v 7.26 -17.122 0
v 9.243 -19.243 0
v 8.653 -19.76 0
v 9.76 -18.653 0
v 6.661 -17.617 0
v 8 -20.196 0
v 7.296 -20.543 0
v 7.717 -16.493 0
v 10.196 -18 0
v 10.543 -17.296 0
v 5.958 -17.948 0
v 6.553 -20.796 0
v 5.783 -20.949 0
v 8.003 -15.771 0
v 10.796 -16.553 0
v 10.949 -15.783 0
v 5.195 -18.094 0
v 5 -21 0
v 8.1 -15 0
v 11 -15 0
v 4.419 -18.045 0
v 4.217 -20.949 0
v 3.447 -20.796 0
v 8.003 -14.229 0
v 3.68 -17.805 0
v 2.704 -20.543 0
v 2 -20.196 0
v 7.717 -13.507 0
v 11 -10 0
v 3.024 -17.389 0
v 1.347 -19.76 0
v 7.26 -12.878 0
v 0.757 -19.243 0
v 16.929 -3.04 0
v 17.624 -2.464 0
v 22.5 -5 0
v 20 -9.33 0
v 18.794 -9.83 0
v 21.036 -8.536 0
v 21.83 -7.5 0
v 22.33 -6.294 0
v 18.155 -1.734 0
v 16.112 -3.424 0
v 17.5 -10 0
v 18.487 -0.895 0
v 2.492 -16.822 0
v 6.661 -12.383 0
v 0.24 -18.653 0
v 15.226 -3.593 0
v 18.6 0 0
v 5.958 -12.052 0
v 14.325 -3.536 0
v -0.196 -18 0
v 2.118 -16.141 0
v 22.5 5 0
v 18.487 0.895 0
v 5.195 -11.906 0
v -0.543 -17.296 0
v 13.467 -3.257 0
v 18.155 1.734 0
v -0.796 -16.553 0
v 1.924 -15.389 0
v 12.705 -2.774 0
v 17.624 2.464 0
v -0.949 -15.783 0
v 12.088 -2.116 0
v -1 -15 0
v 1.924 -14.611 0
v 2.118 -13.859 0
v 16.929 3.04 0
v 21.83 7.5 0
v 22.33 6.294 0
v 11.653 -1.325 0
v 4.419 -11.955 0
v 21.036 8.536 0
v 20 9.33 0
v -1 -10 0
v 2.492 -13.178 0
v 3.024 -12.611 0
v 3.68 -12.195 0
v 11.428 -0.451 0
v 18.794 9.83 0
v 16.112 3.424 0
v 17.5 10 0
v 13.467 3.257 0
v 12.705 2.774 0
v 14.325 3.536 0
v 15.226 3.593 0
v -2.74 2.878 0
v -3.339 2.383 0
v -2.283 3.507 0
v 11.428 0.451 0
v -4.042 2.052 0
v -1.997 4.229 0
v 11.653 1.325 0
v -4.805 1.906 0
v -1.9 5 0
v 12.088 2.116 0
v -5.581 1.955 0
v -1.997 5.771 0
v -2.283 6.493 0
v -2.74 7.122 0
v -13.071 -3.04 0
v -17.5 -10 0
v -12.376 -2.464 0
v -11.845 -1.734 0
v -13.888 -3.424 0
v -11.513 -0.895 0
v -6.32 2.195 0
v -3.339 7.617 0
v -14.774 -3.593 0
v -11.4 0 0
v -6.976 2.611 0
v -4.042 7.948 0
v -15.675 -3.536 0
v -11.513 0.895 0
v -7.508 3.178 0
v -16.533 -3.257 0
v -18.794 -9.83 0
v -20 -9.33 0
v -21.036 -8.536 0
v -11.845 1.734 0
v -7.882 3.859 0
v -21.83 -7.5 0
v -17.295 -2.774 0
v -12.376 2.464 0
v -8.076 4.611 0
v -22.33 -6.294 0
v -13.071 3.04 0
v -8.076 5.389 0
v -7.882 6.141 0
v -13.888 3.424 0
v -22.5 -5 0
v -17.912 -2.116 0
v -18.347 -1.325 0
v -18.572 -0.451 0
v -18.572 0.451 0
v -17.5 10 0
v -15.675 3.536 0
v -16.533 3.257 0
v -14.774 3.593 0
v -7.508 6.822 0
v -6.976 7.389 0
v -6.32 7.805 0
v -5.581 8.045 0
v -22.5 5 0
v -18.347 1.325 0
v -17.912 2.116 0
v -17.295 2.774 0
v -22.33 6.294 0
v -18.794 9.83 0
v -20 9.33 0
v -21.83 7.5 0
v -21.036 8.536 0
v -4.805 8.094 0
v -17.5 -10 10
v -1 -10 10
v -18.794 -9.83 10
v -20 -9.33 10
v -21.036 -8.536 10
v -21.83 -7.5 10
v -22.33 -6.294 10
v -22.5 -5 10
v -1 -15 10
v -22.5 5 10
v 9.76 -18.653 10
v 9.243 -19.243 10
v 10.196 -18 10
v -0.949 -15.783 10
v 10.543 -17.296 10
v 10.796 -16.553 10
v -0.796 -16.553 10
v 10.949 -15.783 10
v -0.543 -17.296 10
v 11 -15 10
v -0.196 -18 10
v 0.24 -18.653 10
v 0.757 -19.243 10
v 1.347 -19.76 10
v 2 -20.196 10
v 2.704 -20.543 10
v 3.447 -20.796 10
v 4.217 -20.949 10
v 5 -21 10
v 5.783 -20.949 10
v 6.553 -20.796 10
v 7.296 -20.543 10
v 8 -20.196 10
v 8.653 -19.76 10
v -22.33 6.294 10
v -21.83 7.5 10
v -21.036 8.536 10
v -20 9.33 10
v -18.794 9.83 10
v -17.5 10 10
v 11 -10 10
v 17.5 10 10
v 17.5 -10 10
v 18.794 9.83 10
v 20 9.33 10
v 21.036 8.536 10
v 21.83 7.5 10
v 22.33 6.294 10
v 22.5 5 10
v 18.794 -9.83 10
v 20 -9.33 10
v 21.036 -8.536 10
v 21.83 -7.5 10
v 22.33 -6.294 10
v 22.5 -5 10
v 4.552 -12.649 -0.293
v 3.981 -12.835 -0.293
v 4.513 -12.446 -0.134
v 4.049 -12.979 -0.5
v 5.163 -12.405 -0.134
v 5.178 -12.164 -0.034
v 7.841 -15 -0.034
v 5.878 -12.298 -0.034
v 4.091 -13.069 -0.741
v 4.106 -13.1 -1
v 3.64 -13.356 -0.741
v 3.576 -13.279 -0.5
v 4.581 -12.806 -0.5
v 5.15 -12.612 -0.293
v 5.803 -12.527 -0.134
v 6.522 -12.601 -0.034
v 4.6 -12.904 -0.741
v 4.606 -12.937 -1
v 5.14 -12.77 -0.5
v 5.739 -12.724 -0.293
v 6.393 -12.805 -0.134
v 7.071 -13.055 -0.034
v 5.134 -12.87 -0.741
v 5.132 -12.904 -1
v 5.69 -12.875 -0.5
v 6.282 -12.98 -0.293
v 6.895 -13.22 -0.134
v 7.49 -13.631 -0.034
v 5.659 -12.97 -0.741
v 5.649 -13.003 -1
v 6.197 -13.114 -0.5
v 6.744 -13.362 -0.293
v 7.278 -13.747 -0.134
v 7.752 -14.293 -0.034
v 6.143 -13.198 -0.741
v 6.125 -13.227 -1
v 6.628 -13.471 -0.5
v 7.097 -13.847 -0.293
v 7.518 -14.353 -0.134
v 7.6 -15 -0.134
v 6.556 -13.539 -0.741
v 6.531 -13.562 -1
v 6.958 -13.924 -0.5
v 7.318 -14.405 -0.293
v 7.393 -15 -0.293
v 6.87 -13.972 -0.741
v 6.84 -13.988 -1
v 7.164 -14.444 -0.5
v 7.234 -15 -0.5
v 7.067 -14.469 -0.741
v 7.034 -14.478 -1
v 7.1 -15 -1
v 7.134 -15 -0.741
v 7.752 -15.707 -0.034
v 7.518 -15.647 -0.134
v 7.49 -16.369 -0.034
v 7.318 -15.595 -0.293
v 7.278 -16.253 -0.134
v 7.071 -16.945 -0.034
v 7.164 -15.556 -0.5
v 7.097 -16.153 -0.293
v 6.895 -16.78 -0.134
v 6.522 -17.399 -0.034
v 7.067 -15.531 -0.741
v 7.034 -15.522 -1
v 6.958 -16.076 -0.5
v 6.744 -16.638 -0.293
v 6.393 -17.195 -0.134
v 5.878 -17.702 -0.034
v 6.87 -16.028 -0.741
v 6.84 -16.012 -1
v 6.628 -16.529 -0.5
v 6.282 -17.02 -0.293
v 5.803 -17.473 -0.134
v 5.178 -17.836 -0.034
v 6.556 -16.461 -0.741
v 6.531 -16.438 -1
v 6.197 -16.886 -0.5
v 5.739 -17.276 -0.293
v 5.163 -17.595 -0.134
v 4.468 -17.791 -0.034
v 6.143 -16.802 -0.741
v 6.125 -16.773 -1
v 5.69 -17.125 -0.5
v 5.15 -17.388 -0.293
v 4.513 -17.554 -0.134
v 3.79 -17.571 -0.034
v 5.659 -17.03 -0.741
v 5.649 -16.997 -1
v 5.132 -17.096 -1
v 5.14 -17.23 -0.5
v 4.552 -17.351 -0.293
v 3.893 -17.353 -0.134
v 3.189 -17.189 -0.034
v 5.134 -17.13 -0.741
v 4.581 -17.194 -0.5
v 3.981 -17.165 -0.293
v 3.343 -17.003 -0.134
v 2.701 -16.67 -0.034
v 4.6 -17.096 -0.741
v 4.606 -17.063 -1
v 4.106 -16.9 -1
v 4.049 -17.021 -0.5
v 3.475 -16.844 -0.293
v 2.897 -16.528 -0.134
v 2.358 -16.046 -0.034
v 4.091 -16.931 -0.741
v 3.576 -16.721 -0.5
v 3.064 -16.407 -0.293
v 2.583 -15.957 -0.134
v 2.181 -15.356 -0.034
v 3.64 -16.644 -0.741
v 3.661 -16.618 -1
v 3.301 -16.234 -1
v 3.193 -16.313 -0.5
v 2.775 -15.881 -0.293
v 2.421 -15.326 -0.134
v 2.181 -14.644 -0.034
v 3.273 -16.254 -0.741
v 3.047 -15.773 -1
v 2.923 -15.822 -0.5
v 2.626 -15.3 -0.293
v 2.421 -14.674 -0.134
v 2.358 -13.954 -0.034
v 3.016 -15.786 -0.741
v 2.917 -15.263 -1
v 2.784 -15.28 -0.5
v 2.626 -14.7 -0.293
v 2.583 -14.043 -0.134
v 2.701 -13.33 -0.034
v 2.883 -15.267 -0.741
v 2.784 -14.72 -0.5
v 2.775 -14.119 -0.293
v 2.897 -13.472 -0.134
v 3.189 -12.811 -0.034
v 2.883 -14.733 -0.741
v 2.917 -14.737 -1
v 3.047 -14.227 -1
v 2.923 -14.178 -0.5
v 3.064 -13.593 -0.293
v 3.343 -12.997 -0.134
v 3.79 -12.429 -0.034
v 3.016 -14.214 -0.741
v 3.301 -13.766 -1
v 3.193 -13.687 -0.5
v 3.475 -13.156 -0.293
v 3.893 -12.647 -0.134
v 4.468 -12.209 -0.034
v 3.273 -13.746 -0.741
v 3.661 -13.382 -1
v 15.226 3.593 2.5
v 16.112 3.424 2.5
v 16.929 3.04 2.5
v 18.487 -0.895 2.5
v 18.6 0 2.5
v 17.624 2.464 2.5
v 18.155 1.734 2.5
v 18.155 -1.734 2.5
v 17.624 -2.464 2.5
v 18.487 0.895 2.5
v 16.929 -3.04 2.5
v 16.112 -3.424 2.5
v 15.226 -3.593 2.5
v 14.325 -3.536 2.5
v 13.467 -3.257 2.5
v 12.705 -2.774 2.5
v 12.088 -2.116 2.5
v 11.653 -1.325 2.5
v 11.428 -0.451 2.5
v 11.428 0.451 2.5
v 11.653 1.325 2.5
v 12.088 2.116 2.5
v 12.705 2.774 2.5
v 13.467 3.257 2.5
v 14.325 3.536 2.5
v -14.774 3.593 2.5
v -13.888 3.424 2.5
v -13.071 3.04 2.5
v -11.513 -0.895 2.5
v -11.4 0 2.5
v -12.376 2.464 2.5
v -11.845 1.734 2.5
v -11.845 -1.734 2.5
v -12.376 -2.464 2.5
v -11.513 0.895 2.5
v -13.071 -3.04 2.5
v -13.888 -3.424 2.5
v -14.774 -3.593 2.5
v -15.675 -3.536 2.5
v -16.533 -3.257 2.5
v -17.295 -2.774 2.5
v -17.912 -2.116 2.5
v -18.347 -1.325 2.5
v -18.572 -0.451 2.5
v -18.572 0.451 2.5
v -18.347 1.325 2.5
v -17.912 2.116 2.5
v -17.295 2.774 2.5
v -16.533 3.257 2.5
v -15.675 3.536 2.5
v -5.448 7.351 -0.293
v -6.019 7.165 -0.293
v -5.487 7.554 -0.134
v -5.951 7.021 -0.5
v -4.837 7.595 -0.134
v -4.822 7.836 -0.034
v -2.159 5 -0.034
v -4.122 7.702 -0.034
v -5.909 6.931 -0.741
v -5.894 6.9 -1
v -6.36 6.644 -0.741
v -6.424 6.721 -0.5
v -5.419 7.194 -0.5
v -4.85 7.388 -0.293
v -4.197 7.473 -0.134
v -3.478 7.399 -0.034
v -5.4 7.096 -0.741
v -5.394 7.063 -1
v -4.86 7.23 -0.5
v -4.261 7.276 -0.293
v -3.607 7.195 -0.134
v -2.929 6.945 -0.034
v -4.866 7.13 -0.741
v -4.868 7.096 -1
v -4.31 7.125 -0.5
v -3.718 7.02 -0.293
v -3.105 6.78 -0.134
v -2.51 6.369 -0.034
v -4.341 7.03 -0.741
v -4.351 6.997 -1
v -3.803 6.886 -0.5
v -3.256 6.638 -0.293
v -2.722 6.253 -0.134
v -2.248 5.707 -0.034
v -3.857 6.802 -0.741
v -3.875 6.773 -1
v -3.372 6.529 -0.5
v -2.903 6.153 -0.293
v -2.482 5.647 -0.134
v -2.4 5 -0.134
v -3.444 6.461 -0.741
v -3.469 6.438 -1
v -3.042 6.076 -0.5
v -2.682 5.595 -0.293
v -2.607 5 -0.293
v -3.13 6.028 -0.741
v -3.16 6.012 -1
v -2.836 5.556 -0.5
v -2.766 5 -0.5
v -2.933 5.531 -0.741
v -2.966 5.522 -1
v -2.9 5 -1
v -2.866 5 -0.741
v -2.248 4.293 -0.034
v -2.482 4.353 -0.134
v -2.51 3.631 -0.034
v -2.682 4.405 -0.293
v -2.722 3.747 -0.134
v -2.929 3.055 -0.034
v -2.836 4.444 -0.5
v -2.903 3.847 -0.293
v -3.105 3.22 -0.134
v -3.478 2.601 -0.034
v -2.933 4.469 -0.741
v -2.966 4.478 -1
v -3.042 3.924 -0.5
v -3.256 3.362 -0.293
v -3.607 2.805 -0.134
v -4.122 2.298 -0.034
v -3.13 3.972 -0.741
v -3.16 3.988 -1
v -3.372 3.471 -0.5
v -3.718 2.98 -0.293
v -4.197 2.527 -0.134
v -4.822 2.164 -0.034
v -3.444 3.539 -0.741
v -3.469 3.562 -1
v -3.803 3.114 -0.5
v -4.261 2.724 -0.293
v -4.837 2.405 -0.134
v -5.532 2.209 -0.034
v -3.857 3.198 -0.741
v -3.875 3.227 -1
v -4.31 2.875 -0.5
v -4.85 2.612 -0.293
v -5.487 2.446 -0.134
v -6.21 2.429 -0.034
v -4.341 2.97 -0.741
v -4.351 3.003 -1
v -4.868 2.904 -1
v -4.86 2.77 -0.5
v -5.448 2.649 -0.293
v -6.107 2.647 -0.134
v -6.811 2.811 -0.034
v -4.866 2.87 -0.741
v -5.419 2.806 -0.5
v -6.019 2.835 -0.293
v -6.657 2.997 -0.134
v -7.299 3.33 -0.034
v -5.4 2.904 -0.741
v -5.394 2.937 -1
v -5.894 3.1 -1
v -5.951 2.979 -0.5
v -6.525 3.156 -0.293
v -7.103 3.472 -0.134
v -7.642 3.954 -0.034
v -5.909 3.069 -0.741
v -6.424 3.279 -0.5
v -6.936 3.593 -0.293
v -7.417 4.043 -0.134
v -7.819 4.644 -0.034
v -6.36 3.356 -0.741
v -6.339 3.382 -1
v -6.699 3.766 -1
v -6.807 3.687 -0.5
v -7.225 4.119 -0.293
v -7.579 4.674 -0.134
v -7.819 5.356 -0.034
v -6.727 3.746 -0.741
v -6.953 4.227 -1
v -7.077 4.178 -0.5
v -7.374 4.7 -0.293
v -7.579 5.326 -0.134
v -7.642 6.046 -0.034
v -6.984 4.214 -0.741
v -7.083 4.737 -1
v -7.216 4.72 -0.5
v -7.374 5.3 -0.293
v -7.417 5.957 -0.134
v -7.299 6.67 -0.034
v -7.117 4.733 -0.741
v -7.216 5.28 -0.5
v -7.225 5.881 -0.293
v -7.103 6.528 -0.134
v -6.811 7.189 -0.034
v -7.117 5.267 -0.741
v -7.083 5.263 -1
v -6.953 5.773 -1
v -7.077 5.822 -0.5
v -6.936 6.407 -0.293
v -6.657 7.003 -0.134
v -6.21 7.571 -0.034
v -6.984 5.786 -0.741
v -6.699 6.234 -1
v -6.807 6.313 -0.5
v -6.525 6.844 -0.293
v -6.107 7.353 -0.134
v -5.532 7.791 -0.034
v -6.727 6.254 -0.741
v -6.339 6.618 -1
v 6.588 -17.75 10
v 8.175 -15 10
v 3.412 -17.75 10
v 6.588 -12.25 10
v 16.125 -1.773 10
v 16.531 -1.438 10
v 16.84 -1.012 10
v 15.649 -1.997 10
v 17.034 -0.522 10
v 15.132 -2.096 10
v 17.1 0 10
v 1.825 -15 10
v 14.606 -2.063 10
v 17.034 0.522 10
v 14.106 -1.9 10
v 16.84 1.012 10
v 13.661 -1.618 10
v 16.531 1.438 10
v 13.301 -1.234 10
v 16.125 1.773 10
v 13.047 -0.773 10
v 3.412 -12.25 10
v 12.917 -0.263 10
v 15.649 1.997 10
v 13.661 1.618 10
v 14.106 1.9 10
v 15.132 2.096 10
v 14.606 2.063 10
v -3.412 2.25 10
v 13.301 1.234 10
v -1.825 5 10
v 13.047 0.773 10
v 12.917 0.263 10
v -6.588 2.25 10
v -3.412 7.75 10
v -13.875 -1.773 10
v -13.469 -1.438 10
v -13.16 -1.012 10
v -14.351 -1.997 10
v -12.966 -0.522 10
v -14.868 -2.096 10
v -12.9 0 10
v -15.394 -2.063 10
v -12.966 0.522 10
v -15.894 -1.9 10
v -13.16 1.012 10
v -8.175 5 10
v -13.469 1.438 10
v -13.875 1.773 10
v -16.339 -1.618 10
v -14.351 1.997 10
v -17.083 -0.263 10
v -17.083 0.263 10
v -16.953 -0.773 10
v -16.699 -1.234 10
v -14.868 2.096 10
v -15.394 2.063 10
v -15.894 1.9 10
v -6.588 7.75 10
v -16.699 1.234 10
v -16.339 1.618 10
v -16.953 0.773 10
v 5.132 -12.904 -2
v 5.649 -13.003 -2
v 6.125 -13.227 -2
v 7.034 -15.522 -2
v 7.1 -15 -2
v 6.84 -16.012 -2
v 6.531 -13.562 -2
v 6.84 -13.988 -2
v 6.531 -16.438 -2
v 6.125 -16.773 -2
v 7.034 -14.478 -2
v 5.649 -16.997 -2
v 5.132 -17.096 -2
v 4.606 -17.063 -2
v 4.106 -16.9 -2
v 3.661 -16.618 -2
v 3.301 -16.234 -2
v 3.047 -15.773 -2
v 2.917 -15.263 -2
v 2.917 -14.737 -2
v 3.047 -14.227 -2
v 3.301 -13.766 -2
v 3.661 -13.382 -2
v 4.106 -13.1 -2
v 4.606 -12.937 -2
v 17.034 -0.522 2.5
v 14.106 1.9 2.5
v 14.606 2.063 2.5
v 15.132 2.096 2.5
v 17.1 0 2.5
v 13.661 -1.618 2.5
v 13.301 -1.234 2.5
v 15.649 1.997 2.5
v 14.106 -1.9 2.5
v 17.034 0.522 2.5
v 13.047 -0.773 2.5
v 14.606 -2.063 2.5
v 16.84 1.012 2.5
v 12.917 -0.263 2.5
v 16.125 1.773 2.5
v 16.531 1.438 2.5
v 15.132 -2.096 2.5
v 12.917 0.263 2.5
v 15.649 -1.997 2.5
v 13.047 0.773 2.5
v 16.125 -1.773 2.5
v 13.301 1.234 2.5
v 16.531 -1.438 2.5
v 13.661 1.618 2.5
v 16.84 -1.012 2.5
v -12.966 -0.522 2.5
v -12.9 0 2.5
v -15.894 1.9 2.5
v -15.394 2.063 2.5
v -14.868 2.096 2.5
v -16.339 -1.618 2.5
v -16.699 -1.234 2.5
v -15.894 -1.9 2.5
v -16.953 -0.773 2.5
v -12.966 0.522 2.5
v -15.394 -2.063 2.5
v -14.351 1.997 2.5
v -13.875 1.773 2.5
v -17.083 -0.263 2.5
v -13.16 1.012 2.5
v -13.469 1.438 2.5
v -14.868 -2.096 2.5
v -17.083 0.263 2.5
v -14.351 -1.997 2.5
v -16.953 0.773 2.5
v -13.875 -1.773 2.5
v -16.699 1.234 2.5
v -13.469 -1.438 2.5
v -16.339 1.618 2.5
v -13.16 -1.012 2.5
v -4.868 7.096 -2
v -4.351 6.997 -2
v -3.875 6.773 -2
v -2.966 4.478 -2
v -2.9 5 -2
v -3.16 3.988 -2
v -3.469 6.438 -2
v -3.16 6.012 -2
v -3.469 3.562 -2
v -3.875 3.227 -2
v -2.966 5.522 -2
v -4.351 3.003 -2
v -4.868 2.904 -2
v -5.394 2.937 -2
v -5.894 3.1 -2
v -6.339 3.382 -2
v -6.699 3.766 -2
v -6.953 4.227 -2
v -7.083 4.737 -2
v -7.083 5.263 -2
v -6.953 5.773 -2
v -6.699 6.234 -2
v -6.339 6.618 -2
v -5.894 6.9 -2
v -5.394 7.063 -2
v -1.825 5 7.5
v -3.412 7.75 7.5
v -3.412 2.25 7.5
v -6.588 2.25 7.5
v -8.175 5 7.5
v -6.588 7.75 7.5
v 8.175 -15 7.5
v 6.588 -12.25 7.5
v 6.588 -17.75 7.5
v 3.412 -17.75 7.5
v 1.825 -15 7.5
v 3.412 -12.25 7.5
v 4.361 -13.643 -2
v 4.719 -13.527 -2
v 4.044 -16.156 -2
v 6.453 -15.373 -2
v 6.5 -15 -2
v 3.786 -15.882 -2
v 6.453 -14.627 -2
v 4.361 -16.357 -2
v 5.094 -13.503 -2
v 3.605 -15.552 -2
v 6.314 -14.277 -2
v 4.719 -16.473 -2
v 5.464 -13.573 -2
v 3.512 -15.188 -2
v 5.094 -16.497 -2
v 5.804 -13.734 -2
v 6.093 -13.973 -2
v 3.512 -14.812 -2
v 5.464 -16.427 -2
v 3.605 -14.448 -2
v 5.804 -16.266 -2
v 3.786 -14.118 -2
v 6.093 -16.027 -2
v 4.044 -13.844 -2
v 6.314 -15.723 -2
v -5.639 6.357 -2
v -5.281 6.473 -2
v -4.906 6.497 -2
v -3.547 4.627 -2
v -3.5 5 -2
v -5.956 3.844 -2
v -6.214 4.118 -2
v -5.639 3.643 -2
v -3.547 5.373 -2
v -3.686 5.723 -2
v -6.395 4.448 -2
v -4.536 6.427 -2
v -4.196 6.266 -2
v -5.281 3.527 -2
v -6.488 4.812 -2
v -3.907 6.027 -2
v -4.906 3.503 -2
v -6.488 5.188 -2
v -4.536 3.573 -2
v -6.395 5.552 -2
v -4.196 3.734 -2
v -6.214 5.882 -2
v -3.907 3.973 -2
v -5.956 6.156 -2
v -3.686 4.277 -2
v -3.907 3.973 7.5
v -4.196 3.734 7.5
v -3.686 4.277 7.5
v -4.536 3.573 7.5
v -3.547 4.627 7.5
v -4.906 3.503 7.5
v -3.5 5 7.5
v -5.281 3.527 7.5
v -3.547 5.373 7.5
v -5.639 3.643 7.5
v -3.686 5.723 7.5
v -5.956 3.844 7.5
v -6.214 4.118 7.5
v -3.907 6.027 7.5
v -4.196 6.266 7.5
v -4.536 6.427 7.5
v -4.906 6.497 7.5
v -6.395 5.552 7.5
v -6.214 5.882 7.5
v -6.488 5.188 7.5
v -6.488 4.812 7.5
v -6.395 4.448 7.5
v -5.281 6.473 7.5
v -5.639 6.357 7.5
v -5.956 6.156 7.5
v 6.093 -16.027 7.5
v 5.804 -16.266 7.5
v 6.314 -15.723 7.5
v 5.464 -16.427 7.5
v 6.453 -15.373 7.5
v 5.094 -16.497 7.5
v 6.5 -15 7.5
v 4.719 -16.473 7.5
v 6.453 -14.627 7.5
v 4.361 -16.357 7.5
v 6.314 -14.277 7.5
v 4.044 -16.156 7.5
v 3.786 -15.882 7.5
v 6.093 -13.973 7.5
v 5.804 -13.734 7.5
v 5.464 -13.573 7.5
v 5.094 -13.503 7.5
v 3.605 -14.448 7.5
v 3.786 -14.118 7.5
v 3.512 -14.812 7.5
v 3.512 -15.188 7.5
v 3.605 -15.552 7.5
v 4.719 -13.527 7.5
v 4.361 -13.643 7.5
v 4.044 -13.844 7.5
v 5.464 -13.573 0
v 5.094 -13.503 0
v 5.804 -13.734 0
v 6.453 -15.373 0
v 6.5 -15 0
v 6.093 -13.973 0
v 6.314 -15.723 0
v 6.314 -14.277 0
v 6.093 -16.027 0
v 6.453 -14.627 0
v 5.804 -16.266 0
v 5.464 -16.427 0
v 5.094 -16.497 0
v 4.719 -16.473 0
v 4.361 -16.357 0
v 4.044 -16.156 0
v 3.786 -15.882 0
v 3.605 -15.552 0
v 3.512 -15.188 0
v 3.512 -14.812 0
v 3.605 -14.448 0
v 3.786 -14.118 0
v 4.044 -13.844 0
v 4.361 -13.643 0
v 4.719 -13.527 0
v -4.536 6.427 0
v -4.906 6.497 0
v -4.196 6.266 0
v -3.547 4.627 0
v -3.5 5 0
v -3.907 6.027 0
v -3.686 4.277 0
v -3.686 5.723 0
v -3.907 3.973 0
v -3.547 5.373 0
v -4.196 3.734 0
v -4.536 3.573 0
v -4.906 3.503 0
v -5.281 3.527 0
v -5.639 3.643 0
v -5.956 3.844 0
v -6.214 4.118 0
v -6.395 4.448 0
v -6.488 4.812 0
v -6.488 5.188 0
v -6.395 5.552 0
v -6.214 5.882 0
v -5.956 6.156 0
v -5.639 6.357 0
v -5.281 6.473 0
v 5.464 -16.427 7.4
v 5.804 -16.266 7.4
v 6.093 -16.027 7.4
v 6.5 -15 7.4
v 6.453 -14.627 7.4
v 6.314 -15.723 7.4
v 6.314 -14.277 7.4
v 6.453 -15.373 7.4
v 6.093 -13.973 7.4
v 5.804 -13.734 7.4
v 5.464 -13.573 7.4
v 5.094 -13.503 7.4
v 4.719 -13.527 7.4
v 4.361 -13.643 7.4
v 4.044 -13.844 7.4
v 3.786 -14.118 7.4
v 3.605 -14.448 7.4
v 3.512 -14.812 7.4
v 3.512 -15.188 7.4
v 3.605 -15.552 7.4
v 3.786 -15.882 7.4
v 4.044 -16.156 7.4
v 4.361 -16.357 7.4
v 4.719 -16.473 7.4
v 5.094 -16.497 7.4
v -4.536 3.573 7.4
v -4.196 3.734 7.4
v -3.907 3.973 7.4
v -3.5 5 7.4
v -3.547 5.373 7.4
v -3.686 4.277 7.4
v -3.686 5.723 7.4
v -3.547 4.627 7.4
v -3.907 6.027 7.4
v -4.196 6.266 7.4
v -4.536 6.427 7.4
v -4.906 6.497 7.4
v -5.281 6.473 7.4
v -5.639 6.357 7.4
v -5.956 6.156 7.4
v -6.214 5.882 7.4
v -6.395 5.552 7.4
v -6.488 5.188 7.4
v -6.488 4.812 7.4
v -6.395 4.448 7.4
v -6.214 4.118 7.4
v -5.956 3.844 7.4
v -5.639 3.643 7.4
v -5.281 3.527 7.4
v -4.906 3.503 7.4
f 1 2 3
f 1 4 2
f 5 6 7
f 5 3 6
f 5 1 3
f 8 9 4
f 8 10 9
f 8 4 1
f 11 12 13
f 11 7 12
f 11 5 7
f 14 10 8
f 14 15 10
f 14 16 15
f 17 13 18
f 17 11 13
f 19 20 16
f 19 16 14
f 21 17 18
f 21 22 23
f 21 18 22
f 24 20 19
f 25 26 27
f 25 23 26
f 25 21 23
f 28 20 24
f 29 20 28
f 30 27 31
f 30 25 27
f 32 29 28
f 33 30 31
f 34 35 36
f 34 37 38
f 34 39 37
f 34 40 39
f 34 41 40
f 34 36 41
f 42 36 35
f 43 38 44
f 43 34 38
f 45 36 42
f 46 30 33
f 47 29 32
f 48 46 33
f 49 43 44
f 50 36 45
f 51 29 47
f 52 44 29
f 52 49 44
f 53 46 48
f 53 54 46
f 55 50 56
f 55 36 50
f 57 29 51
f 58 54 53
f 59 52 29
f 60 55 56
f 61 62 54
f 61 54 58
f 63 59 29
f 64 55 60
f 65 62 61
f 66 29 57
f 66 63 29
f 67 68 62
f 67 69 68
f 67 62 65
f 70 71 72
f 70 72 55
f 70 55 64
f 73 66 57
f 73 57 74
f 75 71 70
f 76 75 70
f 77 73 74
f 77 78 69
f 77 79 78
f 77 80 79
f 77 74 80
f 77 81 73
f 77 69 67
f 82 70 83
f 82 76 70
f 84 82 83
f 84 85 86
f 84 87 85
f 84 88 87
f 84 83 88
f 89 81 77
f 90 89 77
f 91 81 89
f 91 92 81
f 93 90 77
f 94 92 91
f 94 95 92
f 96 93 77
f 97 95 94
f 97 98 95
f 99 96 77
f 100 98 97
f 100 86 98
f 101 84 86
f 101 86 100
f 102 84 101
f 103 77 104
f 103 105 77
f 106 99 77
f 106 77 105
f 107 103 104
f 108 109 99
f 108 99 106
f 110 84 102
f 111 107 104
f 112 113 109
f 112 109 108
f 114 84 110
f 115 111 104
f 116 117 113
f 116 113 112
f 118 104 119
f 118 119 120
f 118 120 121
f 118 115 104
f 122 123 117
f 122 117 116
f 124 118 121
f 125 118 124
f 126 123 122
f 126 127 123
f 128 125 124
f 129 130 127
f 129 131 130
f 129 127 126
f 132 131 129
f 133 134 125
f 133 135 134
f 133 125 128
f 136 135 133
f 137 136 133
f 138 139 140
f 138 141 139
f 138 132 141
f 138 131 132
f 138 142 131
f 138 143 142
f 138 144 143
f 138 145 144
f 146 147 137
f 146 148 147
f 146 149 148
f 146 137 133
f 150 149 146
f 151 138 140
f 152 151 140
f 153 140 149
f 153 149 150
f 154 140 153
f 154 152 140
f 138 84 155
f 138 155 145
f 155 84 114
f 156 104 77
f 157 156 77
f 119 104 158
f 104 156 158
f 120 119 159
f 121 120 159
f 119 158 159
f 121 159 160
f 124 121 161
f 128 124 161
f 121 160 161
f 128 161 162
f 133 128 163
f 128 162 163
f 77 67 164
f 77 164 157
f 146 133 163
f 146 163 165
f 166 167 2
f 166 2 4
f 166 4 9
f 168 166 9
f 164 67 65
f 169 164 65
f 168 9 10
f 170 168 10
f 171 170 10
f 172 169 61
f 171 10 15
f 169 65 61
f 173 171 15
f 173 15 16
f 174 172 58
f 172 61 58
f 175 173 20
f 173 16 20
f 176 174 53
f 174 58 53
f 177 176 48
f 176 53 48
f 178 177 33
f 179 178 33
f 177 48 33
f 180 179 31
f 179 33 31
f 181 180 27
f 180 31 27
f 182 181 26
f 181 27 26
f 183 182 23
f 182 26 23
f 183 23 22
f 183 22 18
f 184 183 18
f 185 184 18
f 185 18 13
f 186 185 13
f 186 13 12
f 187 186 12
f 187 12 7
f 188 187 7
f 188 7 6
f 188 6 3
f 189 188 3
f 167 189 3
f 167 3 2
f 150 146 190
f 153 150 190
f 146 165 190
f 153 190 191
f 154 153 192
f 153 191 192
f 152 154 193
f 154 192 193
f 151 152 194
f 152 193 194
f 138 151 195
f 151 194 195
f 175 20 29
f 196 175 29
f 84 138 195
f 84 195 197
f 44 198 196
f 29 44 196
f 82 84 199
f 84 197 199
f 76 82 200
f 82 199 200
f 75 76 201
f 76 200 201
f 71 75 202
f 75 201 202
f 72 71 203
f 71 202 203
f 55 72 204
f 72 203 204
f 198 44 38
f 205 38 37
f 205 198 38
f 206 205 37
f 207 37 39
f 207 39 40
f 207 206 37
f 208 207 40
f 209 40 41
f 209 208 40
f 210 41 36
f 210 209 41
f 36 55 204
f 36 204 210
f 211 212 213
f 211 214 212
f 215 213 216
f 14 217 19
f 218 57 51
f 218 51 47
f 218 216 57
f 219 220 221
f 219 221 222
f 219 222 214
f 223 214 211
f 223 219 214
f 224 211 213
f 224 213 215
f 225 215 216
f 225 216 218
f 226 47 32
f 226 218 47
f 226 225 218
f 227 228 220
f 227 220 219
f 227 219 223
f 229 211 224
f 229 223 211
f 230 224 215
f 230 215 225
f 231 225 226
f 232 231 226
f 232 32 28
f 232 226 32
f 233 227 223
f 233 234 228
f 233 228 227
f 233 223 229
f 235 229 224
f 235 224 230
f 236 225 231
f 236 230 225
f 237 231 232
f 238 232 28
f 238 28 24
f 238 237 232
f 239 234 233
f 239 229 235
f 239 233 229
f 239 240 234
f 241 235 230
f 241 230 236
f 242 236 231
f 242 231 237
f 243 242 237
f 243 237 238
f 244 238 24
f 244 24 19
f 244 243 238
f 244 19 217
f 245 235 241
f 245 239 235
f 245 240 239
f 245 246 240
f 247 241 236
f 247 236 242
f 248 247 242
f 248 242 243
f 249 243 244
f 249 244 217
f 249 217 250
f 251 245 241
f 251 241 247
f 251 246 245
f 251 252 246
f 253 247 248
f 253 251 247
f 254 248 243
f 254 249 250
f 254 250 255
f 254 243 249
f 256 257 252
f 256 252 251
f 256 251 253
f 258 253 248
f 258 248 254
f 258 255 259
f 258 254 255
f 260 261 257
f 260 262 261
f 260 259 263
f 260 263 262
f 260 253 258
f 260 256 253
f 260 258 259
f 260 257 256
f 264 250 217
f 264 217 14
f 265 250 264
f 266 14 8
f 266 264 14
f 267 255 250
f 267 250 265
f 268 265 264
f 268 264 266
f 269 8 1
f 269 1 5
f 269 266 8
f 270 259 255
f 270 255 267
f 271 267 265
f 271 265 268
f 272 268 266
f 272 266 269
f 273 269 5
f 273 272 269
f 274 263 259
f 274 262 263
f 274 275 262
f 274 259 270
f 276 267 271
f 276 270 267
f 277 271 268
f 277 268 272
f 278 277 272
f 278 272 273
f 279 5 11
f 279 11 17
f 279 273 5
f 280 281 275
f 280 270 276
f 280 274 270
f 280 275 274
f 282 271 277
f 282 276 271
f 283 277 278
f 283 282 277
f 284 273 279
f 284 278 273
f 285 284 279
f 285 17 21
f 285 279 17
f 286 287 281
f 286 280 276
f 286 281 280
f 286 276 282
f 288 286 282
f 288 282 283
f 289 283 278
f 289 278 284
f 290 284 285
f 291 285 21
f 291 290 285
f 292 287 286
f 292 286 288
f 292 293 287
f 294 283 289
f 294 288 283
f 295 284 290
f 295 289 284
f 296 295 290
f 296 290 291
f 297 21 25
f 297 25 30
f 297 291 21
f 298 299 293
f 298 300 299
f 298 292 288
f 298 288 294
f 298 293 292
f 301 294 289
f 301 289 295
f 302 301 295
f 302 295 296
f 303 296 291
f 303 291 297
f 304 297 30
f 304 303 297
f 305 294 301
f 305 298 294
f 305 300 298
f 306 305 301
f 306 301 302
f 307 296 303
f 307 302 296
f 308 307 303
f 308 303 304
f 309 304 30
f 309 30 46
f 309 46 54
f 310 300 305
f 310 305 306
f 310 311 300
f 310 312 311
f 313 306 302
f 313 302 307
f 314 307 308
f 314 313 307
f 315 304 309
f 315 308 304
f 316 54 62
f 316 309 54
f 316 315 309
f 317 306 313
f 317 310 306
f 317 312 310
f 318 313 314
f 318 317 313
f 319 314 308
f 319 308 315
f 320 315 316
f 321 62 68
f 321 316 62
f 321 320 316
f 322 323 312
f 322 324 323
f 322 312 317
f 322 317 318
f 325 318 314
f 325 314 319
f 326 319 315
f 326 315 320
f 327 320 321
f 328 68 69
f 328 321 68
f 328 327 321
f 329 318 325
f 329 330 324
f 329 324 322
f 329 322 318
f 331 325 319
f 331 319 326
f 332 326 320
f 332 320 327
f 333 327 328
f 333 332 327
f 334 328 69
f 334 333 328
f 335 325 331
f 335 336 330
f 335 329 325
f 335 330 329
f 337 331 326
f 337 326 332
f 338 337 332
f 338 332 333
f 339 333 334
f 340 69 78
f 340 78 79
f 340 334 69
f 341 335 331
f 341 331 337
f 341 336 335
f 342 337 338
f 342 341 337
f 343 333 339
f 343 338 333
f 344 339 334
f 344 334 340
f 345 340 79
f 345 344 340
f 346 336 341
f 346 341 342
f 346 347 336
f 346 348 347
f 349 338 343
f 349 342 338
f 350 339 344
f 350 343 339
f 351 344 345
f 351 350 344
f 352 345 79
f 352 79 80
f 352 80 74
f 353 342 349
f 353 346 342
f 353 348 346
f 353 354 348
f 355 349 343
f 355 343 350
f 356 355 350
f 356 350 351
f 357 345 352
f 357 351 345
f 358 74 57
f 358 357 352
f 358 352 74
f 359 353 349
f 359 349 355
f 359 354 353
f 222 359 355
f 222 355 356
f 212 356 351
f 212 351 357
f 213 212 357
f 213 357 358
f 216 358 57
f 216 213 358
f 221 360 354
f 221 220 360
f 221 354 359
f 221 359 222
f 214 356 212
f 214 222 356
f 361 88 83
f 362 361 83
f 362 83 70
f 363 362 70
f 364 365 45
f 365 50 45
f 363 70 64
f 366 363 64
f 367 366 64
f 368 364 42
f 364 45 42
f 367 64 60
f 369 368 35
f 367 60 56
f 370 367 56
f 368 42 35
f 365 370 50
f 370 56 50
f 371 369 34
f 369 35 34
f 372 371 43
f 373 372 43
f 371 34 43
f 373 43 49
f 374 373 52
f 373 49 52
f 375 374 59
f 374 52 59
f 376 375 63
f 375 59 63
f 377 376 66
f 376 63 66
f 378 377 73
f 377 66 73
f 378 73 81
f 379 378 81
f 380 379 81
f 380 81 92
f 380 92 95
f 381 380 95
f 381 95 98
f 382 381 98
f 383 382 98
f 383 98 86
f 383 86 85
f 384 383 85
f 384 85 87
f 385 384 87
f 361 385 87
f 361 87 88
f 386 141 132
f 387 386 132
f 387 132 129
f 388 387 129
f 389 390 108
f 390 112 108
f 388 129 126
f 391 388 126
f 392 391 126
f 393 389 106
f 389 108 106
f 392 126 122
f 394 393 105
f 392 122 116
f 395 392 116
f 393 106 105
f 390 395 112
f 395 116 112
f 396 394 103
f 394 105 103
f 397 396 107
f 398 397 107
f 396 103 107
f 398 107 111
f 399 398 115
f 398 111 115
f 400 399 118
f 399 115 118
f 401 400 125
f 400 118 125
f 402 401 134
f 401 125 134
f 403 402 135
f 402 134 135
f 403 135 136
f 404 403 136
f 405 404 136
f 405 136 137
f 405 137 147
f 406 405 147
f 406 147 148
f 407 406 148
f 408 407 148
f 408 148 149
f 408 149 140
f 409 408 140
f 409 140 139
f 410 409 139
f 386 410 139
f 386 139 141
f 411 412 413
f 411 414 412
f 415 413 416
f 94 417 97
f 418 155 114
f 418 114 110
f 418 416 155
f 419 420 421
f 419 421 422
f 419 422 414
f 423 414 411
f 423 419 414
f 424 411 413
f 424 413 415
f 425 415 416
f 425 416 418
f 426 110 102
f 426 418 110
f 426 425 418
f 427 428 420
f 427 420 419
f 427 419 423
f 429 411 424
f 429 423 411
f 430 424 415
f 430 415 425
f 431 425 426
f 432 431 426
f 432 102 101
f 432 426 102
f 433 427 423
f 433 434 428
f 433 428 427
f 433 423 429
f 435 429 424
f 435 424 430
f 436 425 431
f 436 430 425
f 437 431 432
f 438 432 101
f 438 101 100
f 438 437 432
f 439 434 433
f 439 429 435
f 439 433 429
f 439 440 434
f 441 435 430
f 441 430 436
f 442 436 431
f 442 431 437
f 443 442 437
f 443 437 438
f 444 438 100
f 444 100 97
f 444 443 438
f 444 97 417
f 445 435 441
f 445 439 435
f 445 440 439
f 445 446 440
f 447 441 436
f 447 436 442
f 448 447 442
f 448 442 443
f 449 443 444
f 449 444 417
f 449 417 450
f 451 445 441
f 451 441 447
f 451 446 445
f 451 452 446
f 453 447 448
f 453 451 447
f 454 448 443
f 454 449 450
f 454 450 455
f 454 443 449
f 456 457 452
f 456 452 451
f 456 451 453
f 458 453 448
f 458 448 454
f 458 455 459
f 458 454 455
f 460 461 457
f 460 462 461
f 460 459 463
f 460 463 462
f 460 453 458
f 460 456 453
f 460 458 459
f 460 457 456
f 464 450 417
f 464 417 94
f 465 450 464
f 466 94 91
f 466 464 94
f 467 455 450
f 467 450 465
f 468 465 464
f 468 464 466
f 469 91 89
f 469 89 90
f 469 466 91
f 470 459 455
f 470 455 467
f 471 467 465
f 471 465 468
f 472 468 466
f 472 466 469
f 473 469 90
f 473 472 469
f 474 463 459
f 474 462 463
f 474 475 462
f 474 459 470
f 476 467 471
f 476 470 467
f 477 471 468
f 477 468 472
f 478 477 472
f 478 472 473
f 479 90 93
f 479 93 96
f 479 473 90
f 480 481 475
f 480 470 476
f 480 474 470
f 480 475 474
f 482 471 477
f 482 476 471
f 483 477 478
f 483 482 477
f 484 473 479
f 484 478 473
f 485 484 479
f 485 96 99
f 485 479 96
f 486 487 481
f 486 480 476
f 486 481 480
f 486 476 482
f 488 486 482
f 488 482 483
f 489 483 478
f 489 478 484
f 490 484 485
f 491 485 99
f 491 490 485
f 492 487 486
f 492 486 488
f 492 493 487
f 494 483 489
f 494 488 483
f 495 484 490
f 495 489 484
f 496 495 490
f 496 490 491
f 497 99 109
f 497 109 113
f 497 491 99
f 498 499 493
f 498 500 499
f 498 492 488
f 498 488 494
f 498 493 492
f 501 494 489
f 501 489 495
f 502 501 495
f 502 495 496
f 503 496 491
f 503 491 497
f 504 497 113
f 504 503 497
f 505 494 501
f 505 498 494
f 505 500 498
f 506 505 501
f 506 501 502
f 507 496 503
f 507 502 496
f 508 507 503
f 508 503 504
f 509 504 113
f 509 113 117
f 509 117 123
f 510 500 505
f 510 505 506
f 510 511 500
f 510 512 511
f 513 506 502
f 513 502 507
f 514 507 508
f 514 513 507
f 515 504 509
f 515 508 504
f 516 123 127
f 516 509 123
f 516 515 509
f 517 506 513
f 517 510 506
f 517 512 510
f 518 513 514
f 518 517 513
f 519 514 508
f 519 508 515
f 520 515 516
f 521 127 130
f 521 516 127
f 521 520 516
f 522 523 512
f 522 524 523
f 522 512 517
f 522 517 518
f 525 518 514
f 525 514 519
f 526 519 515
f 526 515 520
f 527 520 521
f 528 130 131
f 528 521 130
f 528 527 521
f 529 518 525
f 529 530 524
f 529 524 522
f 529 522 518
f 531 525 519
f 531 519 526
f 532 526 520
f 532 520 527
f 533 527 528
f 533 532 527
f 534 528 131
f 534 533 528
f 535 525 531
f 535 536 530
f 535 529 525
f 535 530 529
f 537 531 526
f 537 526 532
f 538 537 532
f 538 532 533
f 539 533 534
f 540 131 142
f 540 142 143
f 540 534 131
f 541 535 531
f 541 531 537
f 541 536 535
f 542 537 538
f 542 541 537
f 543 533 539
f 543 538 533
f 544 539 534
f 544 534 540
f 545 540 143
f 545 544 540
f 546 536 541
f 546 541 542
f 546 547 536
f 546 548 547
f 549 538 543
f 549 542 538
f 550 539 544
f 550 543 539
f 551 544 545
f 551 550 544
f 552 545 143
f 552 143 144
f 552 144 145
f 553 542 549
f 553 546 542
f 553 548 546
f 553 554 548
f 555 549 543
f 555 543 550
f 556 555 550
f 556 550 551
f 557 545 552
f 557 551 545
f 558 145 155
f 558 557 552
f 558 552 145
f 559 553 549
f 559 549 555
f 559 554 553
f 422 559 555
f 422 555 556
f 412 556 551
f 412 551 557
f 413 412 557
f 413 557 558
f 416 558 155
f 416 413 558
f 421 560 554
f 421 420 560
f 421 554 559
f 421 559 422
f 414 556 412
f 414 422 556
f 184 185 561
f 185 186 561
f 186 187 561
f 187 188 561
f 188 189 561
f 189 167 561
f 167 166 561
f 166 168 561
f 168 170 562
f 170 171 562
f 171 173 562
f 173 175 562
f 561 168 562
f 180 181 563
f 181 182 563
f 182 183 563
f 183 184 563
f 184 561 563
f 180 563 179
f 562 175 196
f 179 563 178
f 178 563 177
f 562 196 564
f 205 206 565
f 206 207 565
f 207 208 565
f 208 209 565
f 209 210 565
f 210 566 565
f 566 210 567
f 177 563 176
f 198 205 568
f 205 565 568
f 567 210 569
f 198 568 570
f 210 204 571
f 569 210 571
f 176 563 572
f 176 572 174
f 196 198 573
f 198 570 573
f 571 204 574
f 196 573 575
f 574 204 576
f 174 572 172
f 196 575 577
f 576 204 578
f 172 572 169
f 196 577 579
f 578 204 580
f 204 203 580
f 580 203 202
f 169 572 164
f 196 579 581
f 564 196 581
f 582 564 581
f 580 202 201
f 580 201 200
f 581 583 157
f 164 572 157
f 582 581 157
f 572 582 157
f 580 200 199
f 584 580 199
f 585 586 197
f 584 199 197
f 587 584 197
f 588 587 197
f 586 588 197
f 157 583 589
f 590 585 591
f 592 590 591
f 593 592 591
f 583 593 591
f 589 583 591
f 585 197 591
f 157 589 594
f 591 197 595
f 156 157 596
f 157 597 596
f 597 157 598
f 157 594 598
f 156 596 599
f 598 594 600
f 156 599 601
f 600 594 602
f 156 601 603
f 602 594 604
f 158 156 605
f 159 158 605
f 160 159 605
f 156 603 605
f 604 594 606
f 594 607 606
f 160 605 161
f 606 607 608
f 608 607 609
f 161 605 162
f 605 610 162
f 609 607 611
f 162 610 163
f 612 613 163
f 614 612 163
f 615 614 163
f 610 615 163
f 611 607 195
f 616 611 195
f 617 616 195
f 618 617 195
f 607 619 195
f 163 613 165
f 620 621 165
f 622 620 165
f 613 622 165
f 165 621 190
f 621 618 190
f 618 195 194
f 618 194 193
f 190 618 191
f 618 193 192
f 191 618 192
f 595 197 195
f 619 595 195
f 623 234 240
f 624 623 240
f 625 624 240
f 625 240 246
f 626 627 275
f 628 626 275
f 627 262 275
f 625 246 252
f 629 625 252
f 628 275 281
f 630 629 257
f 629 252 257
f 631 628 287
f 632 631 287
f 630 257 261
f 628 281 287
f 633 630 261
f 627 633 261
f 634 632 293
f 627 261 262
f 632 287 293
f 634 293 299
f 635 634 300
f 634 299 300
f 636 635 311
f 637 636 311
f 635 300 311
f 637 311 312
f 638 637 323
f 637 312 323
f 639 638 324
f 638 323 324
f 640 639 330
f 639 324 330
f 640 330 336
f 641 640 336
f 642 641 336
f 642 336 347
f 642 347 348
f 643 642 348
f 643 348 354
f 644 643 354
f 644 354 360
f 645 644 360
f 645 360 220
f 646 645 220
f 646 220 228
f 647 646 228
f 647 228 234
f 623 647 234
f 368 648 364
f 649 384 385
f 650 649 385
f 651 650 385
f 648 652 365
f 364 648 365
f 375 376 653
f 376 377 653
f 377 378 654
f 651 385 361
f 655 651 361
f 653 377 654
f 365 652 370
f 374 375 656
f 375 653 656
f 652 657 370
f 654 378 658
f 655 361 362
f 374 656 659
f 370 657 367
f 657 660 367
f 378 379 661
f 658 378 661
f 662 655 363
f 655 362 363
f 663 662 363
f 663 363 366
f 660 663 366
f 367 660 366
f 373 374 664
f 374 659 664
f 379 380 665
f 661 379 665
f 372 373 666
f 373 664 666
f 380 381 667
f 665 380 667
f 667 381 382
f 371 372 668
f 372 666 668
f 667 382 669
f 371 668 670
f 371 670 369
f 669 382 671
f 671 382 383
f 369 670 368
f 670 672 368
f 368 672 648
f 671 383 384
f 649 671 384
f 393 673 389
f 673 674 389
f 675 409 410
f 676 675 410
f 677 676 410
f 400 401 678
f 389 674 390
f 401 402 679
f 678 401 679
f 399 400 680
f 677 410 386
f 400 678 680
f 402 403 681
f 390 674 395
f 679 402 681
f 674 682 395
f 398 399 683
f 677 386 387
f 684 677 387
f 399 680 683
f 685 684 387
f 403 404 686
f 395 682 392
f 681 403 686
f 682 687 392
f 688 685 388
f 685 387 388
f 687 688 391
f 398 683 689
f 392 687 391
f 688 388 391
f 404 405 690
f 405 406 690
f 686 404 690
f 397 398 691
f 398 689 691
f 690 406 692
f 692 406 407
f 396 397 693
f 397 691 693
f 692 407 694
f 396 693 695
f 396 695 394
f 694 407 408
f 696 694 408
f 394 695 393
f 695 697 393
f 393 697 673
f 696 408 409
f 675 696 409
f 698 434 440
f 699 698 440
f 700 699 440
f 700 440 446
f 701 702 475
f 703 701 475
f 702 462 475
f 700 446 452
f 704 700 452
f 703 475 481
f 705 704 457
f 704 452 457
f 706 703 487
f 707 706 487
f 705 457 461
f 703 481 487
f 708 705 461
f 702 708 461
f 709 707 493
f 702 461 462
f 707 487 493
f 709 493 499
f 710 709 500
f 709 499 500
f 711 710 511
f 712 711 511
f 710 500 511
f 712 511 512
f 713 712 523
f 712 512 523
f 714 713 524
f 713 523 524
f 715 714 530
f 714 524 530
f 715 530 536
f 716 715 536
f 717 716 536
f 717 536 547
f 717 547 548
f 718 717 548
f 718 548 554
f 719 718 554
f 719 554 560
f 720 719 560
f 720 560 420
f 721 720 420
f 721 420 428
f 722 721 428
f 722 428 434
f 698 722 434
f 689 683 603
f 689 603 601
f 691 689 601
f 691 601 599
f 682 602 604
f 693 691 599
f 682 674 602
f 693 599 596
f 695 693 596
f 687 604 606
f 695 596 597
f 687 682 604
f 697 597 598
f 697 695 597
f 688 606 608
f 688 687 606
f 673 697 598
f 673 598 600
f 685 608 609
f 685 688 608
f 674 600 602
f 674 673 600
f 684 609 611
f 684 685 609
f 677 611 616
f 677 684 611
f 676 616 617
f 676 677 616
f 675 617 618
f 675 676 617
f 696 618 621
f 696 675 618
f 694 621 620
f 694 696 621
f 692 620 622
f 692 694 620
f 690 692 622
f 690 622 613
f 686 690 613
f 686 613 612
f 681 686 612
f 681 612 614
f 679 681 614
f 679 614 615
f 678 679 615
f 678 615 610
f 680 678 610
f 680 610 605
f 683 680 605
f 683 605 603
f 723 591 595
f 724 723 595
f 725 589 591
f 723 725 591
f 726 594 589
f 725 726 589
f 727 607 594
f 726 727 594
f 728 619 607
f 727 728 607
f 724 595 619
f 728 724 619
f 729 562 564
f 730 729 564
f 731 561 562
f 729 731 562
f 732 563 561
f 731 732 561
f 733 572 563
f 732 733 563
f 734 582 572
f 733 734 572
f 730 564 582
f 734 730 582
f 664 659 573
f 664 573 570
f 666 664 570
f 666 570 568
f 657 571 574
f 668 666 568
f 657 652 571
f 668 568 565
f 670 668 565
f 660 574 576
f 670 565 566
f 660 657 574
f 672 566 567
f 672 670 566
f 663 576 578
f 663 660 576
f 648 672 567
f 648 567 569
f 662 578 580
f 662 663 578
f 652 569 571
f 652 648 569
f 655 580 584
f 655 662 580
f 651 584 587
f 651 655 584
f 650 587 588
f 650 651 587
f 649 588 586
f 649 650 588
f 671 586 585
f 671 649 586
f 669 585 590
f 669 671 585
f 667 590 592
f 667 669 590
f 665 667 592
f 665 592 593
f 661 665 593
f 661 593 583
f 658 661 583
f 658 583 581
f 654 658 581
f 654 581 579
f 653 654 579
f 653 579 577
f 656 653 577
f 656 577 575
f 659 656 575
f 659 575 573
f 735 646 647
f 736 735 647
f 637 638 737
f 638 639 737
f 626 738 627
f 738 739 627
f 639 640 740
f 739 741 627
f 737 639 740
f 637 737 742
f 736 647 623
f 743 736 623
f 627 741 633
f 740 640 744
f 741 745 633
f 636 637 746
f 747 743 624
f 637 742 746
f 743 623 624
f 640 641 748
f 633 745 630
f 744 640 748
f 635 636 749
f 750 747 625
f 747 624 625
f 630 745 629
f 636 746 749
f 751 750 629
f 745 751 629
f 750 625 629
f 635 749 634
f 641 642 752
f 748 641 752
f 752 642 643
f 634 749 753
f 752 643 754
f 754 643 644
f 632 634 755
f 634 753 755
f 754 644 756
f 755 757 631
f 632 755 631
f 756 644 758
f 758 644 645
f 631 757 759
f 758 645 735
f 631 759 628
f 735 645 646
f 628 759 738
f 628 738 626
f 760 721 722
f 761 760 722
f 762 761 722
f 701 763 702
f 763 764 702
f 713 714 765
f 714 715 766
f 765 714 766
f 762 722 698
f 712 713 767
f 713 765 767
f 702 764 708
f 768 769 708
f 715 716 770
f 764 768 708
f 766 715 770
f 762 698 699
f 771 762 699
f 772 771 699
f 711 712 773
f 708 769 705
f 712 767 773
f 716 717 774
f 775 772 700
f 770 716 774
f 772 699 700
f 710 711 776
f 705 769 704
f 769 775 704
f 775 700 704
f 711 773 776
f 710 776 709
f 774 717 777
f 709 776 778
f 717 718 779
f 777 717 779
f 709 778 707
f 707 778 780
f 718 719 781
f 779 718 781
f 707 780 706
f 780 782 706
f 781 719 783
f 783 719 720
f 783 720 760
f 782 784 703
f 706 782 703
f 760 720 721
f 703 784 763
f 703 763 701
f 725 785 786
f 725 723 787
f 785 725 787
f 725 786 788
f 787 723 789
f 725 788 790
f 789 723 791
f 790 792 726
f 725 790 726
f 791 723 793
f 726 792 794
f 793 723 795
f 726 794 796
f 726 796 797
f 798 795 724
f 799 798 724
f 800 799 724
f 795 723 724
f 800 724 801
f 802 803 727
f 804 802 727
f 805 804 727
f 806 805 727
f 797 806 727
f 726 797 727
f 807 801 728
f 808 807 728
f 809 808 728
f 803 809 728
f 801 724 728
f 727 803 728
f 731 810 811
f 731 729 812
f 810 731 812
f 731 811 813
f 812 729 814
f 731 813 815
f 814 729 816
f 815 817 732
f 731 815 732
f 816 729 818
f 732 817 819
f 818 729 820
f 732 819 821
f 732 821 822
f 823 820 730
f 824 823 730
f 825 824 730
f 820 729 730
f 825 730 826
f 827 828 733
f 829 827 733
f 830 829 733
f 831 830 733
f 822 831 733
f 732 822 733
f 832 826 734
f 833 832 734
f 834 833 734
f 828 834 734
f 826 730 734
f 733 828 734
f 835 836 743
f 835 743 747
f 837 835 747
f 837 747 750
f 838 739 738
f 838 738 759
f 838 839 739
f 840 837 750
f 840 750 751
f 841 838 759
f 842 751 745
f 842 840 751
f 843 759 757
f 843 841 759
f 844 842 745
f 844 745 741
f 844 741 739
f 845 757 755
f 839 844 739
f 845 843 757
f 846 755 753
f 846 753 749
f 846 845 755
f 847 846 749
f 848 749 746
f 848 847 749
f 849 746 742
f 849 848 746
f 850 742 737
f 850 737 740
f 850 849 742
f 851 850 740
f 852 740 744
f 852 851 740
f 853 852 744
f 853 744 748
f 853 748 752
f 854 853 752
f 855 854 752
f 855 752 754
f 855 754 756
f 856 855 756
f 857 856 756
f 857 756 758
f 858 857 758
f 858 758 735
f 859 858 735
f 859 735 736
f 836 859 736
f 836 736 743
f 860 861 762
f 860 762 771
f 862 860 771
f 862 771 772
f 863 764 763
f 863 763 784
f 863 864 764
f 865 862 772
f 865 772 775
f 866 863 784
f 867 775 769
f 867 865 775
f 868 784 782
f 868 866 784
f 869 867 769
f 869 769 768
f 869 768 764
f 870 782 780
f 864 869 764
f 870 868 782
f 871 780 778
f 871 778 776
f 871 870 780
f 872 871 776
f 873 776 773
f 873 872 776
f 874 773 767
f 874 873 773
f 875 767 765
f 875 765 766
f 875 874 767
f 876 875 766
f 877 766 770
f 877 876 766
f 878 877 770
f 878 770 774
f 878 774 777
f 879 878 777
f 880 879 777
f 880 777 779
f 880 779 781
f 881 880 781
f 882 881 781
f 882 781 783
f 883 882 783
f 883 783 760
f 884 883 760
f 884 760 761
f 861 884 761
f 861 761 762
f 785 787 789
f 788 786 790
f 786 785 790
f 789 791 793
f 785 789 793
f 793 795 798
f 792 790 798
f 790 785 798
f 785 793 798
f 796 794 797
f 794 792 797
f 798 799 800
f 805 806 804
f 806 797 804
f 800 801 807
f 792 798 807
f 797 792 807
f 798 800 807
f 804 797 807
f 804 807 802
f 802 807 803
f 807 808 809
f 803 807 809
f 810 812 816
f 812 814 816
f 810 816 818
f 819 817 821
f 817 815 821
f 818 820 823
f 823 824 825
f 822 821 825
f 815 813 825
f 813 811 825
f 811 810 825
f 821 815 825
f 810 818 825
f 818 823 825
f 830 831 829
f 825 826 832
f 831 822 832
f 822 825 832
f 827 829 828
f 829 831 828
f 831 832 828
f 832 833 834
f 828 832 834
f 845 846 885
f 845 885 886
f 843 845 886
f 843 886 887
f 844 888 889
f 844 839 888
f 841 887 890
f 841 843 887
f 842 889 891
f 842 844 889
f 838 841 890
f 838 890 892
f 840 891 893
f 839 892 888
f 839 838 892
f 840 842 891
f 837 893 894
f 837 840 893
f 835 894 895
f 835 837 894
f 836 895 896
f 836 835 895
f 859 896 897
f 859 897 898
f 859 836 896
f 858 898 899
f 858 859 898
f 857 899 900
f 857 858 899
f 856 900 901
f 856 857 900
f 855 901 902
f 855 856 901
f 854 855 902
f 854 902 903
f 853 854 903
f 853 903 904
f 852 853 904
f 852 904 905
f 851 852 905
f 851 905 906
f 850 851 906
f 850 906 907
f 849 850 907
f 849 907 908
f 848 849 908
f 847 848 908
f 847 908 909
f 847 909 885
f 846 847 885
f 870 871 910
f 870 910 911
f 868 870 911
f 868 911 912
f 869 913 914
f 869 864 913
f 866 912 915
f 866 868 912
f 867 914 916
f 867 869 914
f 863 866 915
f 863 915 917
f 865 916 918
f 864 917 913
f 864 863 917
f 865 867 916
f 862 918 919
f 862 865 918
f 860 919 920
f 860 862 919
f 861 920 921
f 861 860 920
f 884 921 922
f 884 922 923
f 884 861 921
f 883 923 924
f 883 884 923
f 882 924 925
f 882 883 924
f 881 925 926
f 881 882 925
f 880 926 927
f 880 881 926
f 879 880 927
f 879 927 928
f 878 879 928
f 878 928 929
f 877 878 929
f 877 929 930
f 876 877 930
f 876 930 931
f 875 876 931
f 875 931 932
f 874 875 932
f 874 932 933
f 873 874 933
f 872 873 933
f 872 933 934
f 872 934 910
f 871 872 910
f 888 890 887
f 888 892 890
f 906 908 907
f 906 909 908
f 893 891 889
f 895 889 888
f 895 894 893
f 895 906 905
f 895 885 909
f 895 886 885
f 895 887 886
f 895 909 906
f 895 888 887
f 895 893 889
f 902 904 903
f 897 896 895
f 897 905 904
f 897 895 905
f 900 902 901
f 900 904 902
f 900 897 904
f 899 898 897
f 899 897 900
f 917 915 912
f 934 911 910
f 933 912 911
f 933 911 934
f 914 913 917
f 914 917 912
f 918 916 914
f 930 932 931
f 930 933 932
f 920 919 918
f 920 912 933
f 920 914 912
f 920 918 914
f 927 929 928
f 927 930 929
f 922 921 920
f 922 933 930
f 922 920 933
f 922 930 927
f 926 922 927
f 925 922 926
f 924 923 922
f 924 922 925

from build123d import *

# Parameters (mm, degrees)
SKETCH_R        = 2.1
SKETCH_R_2      = 1.5
PAD_DEPTH       = 10
POCKET_DEPTH    = 2.5
SKETCH002_R     = 2.1
SKETCH002_R_2   = 1.5
PAD001_DEPTH    = 2
SKETCH003_R     = 3.6
SKETCH003_R_2   = 2.1
POCKET001_DEPTH = 2.5
FILLET_R        = 1
FILLET001_R     = 5
SKETCH004_R     = 1.5
PAD002_DEPTH    = 0.1


with BuildPart() as part:
    # Sketch → Pad (new body)
    with BuildSketch(Plane.XY):
        with BuildLine():
            Line((-22.5, 10), (22.5, 10))
            Line((22.5, 10), (22.5, -10))
            Line((22.5, -10), (11, -10))
            Line((11, -15), (11, -10))
            ThreePointArc((-1, -15), (5, -21), (11, -15))
            Line((-1, -15), (-1, -10))
            Line((-22.5, -10), (-1, -10))
            Line((-22.5, -10), (-22.5, 10))
        make_face()
        with Locations((-15, 0)):
            Circle(SKETCH_R, mode=Mode.SUBTRACT)
        with Locations((15, 0)):
            Circle(SKETCH_R, mode=Mode.SUBTRACT)
        with Locations((-5, 5)):
            Circle(SKETCH_R_2, mode=Mode.SUBTRACT)
        with Locations((5, -15)):
            Circle(SKETCH_R_2, mode=Mode.SUBTRACT)
    extrude(amount=PAD_DEPTH)

    # Sketch001 → Pocket (cut)
    with BuildSketch(Plane.XY.offset(10)):
        Polygon((-3.412287, 2.25), (-1.824574, 5), (-3.412287, 7.75), (-6.587713, 7.75), (-8.175426, 5), (-6.587713, 2.25), align=None)
        Polygon((6.587713, -17.75), (8.175426, -15), (6.587713, -12.25), (3.412287, -12.25), (1.824574, -15), (3.412287, -17.75), align=None)
    extrude(amount=-POCKET_DEPTH, mode=Mode.SUBTRACT)

    # Sketch002 → Pad001 (new body)
    with BuildSketch(Plane(origin=(0, 0, 0), x_dir=(1, 0, 0), z_dir=(0, 0, -1))):
        with Locations((-5, -5)):
            Circle(SKETCH002_R)
        with Locations((-5, -5)):
            Circle(SKETCH002_R_2, mode=Mode.SUBTRACT)
        with Locations((5, 15)):
            Circle(SKETCH002_R)
        with Locations((5, 15)):
            Circle(SKETCH002_R_2, mode=Mode.SUBTRACT)
    extrude(amount=PAD001_DEPTH)

    # Sketch003 → Pocket001 (cut)
    with BuildSketch(Plane(origin=(0, 0, 0), x_dir=(1, 0, 0), z_dir=(0, 0, -1))):
        with Locations((15, 0)):
            Circle(SKETCH003_R)
        with Locations((15, 0)):
            Circle(SKETCH003_R_2, mode=Mode.SUBTRACT)
        with Locations((-15, 0)):
            Circle(SKETCH003_R)
        with Locations((-15, 0)):
            Circle(SKETCH003_R_2, mode=Mode.SUBTRACT)
    extrude(amount=-POCKET001_DEPTH, mode=Mode.SUBTRACT)

    # Fillet
    fillet_edges = [part.edges().sort_by_distance(p)[0] for p in [
        (2.9, -15, 0),
        (-7.1, 5, 0),
    ]]
    fillet(fillet_edges, radius=FILLET_R)

    # Fillet001
    fillet001_edges = [part.edges().sort_by_distance(p)[0] for p in [
        (22.5, 10, 5),
        (22.5, -10, 5),
        (-22.5, 10, 5),
        (-22.5, -10, 5),
    ]]
    fillet(fillet001_edges, radius=FILLET001_R)

    # Sketch004 → Pad002 (new body)
    with BuildSketch(Plane.XY.offset(7.5)):
        with Locations((-5, 5)):
            Circle(SKETCH004_R)
        with Locations((5, -15)):
            Circle(SKETCH004_R)
    extrude(amount=-PAD002_DEPTH)


solid = part.part
